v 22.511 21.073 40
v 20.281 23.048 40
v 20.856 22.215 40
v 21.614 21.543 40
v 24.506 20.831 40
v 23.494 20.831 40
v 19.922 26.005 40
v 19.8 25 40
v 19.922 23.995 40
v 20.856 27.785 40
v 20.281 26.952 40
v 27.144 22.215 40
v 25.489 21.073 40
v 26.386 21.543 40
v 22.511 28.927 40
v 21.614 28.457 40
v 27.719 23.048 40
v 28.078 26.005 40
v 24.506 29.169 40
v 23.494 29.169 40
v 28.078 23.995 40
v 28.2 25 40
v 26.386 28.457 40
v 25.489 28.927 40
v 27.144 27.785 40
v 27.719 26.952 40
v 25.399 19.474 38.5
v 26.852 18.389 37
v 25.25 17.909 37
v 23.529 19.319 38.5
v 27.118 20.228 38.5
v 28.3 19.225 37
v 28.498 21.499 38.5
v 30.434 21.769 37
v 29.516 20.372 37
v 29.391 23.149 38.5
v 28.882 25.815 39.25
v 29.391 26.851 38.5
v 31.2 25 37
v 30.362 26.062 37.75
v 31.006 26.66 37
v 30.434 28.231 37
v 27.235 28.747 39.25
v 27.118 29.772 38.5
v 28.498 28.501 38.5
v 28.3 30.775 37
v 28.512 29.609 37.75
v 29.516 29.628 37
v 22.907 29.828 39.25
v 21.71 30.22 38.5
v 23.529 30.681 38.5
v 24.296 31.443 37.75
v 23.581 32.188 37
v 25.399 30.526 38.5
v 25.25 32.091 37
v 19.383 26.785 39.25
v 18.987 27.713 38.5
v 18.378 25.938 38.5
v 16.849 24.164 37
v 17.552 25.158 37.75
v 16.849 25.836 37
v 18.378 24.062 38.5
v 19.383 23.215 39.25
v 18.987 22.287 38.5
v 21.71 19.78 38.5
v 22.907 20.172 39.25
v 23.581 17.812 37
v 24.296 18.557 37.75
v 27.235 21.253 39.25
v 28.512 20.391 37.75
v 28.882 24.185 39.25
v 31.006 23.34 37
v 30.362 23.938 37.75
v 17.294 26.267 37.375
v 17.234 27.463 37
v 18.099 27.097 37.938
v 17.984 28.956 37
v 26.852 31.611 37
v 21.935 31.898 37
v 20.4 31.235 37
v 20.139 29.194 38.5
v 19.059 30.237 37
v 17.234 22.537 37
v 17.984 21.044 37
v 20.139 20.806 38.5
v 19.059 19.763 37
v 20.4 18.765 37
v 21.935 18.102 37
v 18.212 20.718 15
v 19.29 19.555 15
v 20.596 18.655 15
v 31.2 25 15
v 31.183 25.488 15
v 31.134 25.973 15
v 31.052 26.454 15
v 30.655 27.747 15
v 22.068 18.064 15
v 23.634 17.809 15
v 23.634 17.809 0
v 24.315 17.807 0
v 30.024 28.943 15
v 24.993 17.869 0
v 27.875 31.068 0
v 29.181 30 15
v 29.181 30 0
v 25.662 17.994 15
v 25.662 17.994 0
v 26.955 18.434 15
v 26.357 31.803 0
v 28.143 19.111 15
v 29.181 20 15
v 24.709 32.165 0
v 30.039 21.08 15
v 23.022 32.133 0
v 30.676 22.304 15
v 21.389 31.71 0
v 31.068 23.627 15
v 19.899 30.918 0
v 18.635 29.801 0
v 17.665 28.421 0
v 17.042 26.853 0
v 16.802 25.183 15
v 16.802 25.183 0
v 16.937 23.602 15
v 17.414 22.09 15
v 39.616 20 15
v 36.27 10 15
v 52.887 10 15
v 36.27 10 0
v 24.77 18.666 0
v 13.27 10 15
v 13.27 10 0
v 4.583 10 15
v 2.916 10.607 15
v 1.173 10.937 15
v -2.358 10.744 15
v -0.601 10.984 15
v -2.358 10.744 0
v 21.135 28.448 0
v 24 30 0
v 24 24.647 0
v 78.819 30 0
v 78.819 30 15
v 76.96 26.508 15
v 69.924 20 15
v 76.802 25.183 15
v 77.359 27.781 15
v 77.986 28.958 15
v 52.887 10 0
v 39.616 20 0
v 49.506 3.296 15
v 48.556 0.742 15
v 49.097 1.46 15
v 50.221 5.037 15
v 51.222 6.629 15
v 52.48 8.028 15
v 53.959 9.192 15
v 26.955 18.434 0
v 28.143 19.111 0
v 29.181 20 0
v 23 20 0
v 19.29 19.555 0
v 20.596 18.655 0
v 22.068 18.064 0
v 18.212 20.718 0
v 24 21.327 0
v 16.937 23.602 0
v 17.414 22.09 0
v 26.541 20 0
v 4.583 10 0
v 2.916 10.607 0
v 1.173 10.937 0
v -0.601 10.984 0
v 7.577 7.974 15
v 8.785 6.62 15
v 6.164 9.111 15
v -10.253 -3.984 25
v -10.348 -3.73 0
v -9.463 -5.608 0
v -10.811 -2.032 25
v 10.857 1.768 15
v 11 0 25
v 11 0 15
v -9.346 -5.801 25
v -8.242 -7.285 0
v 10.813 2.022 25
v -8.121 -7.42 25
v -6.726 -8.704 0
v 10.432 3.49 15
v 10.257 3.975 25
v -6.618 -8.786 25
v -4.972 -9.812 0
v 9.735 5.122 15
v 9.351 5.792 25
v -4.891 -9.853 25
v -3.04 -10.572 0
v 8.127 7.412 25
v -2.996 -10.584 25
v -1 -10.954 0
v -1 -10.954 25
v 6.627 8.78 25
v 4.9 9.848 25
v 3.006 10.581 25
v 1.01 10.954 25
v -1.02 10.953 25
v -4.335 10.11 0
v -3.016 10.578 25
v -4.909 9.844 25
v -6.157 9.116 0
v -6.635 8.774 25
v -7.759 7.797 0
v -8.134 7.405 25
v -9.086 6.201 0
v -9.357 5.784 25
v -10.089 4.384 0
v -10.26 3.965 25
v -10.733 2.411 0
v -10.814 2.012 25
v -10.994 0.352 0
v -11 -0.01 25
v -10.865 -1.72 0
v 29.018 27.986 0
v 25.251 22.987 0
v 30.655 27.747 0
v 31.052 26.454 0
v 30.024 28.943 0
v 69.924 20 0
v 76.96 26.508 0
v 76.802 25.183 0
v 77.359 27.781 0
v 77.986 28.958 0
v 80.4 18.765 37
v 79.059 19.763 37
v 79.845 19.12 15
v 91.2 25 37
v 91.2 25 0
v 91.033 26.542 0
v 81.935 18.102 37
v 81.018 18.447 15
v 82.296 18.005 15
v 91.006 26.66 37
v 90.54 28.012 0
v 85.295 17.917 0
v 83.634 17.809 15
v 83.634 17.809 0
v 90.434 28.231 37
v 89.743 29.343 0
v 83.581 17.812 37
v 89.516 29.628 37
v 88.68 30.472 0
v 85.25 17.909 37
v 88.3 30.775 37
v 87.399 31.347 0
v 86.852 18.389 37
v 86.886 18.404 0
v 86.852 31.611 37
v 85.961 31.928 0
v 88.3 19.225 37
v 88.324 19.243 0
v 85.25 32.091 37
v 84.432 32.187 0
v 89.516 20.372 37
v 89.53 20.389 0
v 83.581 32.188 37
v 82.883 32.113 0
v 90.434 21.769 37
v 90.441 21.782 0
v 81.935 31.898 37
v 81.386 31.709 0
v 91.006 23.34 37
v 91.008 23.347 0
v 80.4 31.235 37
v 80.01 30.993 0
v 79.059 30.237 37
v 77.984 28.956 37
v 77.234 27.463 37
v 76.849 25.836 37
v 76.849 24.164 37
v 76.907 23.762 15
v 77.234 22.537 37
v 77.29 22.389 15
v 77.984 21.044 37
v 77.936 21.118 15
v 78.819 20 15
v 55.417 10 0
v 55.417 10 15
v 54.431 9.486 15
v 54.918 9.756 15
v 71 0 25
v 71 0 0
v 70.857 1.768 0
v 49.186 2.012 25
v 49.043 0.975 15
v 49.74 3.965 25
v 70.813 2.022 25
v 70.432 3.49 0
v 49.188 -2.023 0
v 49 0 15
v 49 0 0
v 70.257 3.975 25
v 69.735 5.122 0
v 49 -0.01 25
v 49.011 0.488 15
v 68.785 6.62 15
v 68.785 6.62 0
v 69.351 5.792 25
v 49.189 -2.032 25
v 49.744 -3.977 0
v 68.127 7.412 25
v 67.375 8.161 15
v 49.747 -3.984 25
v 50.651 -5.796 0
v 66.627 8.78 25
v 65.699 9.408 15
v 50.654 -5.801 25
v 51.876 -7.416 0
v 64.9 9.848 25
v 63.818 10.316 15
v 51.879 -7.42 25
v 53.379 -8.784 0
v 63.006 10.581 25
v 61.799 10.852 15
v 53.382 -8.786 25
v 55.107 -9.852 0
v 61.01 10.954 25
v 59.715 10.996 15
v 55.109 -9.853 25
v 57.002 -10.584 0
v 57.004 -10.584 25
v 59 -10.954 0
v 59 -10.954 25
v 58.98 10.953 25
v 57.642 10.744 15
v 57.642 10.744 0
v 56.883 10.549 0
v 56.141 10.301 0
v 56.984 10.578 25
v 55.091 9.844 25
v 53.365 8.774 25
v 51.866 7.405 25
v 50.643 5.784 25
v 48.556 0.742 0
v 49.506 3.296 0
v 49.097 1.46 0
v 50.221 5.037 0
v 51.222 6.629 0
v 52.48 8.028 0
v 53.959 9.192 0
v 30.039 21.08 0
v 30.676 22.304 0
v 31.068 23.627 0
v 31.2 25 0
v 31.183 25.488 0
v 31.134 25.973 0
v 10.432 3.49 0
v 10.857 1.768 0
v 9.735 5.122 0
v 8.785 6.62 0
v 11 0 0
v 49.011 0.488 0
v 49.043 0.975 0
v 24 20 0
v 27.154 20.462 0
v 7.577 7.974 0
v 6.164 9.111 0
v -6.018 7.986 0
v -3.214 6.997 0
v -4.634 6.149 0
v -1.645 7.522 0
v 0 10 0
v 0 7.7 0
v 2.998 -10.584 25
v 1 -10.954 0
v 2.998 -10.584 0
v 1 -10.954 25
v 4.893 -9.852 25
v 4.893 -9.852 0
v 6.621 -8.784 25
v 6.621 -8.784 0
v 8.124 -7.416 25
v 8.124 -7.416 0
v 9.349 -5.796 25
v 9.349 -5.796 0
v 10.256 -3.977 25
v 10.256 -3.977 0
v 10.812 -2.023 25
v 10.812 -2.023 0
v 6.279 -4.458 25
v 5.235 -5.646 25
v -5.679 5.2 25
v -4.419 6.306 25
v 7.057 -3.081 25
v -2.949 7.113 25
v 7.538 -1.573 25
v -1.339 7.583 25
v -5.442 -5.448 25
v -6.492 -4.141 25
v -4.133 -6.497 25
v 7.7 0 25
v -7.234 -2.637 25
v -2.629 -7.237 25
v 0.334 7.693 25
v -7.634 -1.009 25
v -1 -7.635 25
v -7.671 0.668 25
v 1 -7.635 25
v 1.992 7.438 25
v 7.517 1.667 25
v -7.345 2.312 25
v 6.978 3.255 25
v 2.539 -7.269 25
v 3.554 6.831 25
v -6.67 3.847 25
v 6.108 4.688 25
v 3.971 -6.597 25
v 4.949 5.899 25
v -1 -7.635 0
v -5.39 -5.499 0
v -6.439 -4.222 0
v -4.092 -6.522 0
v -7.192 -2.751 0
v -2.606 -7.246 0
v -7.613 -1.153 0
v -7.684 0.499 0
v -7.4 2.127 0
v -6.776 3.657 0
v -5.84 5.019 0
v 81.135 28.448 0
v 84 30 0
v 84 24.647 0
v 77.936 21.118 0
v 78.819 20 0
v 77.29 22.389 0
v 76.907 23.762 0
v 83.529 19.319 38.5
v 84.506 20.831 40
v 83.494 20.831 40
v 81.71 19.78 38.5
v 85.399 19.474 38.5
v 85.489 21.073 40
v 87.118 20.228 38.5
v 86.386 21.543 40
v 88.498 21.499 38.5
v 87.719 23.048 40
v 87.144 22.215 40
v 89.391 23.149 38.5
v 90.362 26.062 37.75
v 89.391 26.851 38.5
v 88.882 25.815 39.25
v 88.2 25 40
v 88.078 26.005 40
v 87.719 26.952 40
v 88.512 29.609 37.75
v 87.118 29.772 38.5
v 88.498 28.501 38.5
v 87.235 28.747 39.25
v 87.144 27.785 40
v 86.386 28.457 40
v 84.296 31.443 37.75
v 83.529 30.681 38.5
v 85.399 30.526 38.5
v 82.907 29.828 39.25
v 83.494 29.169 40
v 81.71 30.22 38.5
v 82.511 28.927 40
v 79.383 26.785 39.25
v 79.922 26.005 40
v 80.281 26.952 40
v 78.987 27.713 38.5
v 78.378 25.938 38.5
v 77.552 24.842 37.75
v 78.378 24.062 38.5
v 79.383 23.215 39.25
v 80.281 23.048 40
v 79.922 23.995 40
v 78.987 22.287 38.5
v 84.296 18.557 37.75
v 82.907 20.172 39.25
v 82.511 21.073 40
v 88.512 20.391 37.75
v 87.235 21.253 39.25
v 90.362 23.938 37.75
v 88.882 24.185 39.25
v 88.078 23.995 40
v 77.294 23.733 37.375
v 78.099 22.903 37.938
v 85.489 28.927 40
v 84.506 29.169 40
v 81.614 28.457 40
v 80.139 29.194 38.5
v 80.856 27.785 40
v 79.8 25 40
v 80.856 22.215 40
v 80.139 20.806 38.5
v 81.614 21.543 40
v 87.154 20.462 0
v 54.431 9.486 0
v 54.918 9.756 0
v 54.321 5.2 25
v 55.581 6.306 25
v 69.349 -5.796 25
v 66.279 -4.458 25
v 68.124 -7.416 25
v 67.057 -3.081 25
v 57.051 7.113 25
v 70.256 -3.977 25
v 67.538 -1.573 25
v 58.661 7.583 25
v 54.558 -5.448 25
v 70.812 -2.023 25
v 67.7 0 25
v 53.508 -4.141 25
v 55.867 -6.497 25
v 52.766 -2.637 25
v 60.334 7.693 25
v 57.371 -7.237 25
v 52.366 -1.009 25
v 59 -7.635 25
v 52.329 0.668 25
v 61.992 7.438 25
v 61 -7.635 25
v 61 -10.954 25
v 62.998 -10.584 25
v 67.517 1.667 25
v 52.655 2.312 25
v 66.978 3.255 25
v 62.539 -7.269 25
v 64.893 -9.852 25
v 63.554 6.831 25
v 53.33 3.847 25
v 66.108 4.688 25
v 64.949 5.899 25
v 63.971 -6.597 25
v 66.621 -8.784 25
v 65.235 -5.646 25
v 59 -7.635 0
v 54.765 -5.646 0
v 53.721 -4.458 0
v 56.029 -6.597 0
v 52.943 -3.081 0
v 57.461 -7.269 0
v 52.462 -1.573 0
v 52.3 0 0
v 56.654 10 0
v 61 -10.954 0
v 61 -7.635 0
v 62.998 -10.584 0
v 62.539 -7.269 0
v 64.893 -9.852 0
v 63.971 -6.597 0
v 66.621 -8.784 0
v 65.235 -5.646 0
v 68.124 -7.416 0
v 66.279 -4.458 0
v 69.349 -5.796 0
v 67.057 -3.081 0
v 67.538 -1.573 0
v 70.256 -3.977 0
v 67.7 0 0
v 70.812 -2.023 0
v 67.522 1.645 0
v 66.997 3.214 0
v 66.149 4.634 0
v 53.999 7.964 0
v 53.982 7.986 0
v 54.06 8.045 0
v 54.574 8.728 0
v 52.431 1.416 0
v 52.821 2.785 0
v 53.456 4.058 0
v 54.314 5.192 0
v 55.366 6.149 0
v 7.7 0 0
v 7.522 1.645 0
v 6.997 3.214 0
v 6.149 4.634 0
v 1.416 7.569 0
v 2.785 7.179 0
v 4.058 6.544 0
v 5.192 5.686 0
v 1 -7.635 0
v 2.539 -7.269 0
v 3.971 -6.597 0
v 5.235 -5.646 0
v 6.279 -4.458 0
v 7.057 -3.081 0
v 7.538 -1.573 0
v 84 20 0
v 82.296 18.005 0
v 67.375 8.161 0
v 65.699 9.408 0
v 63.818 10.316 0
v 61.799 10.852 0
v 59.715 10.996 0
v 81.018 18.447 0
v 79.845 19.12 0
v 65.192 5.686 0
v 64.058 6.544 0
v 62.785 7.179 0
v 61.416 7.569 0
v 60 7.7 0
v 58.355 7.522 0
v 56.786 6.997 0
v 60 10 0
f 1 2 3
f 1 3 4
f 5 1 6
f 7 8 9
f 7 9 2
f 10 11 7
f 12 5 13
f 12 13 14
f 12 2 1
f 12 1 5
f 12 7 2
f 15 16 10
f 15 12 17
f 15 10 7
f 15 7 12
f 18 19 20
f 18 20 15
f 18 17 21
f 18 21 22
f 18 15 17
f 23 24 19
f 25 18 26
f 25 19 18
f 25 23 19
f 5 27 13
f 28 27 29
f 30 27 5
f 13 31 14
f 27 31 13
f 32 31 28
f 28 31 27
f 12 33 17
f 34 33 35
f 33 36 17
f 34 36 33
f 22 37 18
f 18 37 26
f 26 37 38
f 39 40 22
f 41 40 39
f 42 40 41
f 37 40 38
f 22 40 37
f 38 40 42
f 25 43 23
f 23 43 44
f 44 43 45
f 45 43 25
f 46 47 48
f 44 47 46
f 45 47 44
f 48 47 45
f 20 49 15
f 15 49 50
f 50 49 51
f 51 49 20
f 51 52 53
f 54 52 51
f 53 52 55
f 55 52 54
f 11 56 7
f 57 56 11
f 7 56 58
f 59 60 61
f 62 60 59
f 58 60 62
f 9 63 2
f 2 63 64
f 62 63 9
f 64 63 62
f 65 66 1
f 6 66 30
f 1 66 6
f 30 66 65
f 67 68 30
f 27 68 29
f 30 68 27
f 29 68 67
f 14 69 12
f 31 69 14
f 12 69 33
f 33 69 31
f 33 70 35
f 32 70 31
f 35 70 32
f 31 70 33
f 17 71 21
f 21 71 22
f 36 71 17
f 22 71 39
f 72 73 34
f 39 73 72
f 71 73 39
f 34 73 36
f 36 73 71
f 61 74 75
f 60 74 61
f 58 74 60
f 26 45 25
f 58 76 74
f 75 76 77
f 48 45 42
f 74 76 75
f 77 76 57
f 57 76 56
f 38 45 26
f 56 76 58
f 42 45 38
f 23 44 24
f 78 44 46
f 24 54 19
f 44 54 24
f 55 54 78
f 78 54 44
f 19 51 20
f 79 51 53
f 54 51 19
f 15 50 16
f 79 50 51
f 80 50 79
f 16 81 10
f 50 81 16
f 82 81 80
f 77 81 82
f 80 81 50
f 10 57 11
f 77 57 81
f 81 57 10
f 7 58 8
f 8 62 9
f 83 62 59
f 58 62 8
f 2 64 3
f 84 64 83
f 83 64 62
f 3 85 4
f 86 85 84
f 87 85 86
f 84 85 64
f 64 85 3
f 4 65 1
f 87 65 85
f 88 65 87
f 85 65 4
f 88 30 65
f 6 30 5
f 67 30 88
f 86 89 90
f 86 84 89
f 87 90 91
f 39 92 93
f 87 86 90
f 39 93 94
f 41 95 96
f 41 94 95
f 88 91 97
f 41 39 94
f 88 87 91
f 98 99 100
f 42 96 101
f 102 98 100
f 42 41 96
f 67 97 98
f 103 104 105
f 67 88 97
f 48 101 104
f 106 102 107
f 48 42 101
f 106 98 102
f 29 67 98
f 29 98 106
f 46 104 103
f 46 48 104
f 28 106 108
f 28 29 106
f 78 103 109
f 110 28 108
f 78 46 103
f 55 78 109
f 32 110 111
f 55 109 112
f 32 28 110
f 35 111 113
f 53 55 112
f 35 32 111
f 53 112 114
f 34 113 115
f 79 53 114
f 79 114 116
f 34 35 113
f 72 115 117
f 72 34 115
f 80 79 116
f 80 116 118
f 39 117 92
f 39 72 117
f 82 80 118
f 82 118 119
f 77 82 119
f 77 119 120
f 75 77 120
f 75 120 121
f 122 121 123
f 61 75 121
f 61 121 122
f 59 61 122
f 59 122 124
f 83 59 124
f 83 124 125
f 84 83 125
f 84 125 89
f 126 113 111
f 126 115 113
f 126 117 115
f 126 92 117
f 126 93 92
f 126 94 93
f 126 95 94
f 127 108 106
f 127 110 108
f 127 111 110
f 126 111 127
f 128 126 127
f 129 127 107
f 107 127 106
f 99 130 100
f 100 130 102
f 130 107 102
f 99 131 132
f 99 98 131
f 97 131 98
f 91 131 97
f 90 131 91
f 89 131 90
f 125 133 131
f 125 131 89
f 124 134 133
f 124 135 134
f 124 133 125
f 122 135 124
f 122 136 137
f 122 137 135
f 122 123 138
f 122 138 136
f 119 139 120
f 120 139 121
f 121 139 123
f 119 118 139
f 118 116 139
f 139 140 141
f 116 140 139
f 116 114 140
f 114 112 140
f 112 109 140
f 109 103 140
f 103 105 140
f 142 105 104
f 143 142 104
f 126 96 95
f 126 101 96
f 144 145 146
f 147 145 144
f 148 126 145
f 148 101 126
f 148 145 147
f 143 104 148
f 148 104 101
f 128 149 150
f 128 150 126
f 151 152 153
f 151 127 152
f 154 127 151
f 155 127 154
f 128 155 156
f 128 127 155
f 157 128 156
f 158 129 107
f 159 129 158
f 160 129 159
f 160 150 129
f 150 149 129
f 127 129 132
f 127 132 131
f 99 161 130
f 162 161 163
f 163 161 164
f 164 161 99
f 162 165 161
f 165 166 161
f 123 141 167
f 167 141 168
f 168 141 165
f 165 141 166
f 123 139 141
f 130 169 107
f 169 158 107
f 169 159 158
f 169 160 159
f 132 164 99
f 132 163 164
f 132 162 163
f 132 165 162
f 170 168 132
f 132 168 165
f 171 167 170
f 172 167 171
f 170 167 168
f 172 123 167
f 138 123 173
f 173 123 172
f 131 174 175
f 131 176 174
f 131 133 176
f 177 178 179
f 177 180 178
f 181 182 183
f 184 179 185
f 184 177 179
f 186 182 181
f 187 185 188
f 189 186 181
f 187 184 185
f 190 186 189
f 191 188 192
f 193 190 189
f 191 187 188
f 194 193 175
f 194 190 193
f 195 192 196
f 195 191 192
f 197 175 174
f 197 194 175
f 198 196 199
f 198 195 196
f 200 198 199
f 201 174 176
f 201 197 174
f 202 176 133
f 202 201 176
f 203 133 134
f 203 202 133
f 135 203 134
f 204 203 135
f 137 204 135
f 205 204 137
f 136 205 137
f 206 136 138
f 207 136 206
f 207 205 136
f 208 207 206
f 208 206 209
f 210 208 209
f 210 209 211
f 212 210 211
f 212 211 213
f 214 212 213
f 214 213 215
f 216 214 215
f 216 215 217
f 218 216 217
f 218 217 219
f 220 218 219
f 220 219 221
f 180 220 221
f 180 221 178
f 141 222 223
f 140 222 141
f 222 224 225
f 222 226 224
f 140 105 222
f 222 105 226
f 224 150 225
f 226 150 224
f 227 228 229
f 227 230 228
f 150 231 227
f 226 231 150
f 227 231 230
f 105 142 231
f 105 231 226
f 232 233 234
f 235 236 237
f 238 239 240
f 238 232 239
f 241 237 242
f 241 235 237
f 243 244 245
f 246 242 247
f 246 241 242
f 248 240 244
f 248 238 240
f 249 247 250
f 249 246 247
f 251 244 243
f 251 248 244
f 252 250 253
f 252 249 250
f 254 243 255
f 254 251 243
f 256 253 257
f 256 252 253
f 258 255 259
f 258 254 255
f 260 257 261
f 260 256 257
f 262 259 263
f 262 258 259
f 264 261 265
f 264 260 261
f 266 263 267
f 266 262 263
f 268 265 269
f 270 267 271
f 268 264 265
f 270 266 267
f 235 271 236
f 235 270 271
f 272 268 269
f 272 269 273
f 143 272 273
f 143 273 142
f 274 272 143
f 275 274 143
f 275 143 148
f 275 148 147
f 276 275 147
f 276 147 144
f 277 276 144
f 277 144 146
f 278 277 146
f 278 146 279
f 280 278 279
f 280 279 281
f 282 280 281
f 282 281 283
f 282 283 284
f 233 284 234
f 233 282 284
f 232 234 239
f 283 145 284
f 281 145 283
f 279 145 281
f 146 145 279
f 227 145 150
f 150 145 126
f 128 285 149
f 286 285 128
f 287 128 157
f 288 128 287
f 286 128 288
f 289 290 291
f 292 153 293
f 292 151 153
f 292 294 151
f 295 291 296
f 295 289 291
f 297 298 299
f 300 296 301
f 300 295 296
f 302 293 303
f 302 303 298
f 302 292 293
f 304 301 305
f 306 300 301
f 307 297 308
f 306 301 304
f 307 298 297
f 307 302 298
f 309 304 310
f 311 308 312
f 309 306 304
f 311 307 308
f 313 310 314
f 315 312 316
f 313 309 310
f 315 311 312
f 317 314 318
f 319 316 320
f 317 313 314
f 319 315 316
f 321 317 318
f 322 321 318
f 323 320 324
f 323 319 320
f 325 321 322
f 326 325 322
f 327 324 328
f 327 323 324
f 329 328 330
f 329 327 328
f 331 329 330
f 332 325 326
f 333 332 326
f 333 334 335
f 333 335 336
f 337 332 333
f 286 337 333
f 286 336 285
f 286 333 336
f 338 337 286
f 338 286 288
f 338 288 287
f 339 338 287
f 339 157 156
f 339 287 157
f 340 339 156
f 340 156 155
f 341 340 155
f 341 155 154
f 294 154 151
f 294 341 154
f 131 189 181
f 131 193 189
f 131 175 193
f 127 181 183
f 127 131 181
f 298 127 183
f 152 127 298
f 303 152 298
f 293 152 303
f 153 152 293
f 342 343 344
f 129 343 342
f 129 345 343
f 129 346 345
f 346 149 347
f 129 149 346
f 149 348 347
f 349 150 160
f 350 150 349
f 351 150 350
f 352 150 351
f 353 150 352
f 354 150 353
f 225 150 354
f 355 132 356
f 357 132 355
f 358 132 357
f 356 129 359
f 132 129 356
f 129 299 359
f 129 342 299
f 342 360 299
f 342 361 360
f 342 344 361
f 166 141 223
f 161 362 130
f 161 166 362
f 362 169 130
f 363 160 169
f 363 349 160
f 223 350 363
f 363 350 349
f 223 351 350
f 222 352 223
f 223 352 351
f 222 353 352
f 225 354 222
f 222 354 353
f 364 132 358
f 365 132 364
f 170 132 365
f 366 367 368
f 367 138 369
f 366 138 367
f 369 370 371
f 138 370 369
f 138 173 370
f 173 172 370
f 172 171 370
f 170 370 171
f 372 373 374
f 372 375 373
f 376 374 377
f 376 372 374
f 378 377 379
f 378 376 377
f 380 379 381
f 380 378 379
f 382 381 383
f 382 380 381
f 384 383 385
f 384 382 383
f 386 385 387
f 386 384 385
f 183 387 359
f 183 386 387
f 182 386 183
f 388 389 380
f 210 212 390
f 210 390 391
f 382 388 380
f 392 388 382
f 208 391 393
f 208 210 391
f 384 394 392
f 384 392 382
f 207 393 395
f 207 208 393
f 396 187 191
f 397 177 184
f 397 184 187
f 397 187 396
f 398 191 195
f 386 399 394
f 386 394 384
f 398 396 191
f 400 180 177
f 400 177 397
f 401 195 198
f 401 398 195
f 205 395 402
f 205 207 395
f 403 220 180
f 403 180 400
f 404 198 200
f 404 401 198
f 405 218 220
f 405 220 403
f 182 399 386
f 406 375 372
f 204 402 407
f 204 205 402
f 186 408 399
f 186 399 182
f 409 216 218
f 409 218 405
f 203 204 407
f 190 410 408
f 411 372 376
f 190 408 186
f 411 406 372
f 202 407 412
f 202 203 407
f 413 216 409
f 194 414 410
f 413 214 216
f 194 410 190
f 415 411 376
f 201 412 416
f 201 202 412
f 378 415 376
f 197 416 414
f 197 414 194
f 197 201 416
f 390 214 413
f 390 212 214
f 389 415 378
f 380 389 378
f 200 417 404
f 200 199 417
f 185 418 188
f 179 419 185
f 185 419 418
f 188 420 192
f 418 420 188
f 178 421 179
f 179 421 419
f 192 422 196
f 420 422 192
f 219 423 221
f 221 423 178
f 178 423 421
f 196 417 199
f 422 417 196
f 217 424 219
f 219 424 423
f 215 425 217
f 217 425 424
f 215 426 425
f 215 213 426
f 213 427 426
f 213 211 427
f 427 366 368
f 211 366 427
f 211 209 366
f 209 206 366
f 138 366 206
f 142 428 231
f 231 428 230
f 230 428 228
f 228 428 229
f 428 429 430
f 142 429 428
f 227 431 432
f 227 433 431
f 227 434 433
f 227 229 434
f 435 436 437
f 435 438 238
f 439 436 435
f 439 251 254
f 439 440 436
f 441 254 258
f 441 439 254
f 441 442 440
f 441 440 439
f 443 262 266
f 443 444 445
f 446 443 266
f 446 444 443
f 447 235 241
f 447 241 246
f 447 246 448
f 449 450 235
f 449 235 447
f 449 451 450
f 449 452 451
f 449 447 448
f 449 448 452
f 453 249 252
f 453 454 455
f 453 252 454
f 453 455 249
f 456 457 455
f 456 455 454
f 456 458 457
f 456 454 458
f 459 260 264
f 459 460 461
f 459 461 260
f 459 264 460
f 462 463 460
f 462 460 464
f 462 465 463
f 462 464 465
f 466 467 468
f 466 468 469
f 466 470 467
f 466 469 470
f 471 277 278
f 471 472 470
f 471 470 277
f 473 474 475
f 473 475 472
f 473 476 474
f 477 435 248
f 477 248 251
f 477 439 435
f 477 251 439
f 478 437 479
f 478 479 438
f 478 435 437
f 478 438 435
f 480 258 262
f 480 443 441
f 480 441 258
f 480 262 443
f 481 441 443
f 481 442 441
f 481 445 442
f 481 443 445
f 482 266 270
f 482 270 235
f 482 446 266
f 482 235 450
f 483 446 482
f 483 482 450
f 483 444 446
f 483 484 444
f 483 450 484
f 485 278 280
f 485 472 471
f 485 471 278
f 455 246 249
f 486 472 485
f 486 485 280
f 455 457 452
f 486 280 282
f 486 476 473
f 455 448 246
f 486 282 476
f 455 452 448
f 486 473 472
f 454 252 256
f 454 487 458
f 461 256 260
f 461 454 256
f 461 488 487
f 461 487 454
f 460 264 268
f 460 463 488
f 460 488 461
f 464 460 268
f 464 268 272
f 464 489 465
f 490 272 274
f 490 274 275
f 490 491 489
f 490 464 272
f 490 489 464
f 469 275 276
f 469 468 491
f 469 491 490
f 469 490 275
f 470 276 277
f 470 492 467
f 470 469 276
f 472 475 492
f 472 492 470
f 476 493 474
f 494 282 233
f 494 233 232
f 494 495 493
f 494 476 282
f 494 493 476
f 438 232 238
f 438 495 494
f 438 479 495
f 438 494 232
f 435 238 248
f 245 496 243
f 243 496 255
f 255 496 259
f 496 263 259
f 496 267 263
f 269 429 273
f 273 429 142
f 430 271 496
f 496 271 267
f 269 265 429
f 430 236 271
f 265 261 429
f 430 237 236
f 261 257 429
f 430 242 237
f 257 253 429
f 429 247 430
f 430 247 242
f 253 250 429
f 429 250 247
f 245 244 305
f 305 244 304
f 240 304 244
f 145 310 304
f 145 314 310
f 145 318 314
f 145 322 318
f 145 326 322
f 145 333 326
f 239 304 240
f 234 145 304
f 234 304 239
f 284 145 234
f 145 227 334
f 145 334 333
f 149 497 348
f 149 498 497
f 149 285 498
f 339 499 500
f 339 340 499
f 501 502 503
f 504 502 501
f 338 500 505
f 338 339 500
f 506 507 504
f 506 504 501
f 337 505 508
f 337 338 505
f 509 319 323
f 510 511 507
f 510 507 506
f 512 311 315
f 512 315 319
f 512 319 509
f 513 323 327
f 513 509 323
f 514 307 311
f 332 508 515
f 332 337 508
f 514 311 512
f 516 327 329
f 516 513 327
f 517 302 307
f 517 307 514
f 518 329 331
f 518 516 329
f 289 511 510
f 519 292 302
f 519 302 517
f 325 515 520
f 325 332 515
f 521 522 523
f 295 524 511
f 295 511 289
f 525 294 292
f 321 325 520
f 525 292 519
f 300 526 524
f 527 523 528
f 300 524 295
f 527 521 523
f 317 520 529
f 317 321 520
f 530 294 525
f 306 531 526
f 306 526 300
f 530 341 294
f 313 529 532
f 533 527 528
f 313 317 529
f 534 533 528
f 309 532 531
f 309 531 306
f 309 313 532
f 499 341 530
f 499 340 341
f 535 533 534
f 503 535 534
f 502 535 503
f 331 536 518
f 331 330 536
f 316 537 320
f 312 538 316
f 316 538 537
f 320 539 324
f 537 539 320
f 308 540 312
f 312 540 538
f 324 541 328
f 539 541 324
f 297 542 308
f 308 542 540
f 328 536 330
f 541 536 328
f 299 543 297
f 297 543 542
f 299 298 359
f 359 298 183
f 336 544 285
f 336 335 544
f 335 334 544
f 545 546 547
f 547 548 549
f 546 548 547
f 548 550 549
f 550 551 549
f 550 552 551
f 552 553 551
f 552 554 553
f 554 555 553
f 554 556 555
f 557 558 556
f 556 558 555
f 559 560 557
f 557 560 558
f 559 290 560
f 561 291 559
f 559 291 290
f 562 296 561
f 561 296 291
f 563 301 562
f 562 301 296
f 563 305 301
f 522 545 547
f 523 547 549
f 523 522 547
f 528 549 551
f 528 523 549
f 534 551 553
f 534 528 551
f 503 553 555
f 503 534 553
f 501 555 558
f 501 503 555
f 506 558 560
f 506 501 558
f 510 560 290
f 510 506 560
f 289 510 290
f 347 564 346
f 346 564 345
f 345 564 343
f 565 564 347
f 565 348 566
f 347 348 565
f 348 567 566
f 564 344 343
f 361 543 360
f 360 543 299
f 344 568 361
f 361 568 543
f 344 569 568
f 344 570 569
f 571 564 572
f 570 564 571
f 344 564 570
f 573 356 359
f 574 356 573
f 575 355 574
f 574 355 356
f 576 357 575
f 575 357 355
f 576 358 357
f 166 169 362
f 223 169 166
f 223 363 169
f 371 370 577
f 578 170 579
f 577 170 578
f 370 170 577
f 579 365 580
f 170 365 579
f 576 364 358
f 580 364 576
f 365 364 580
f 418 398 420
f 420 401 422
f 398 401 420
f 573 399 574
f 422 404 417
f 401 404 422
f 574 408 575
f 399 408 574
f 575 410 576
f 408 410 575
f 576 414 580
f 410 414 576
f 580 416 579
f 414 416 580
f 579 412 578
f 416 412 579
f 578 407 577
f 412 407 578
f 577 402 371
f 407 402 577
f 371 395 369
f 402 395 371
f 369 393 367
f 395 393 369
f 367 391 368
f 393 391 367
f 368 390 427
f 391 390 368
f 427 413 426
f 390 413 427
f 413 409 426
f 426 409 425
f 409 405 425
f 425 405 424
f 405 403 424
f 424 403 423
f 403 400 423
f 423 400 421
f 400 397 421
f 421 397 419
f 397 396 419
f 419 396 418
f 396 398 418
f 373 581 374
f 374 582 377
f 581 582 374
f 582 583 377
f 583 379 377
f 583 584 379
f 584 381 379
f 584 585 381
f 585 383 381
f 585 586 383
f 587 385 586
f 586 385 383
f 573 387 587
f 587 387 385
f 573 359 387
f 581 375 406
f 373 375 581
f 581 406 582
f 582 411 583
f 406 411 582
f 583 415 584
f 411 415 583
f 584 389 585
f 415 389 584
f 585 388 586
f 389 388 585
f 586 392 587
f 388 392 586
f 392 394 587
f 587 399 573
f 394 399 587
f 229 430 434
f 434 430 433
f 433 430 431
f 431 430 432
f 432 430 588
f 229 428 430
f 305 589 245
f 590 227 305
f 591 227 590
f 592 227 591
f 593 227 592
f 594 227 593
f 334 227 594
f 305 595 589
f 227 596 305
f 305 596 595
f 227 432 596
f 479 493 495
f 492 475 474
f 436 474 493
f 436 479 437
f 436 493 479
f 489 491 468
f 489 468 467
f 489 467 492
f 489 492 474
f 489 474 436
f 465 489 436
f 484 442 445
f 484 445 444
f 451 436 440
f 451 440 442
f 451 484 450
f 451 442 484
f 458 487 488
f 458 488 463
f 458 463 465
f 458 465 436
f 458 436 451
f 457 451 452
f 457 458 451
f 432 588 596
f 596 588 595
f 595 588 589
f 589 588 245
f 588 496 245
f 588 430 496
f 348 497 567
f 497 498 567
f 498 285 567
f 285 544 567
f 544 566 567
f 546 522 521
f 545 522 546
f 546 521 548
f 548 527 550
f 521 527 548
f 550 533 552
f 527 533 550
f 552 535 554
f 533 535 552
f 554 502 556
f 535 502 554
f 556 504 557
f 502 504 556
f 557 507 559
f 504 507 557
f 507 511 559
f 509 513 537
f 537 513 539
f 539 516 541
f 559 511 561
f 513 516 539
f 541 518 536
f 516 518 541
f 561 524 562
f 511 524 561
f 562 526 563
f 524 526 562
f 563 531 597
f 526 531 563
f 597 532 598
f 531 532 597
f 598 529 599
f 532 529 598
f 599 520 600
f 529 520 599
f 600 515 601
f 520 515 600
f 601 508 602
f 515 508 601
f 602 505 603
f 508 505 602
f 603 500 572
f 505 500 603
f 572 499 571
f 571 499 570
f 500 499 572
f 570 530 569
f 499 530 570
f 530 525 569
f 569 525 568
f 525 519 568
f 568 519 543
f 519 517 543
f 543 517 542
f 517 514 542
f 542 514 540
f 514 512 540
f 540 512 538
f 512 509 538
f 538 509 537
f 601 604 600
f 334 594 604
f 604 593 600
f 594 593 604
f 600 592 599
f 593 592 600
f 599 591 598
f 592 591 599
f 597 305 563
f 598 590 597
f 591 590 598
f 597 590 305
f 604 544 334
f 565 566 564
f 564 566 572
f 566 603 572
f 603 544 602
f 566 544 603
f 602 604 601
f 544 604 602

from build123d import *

# Parameters (mm, degrees)
BOX006_W               = 2
BOX006_H               = 10
BOX006_DEPTH           = 30
BOX005_W               = 2
BOX005_H               = 10
BOX005_DEPTH           = 30
CYLINDER001_R          = 7.7
CYLINDER001_DEPTH      = 25
CYLINDER_R             = 7.7
CYLINDER_DEPTH         = 25
BOX004_W               = 32
BOX004_H               = 10
BOX004_DEPTH           = 15
BOX004_PLACEMENT_ANGLE = -37
BOX_W                  = 60
BOX_H                  = 10
BOX_DEPTH              = 15
CYLINDER002_R          = 11
CYLINDER002_DEPTH      = 25
CYLINDER003_R          = 11
CYLINDER003_DEPTH      = 25
BOX003_W               = 34
BOX003_H               = 10
BOX003_DEPTH           = 15
BOX003_PLACEMENT_ANGLE = 37
BOX002_W               = 34
BOX002_H               = 10
BOX002_DEPTH           = 15
BOX002_PLACEMENT_ANGLE = 37
CYLINDER005_R          = 7.2
CYLINDER005_DEPTH      = 40
CYLINDER004_R          = 7.2
CYLINDER004_DEPTH      = 40
BOX001_W               = 60
BOX001_H               = 10
BOX001_DEPTH           = 15
CHAMFER_SIZE           = 3


with BuildPart() as cube006:
    # Box006 → Box006 (new body)
    with BuildSketch(Plane(origin=(59, -15, 0), x_dir=(1, 0, 0), z_dir=(0, 0, 1))):
        with Locations((1, 5)):
            Rectangle(BOX006_W, BOX006_H)
    extrude(amount=BOX006_DEPTH)


with BuildPart() as cube005:
    # Box005 → Box005 (new body)
    with BuildSketch(Plane(origin=(-1, -15, 0), x_dir=(1, 0, 0), z_dir=(0, 0, 1))):
        with Locations((1, 5)):
            Rectangle(BOX005_W, BOX005_H)
    extrude(amount=BOX005_DEPTH)


with BuildPart() as cylinder001:
    # Cylinder001 → Cylinder001 (new body)
    with BuildSketch(Plane(origin=(60, 0, 0), x_dir=(1, 0, 0), z_dir=(0, 0, 1))):
        Circle(CYLINDER001_R)
    extrude(amount=CYLINDER001_DEPTH)


with BuildPart() as cylinder:
    # Cylinder → Cylinder (new body)
    with BuildSketch(Plane.XY):
        Circle(CYLINDER_R)
    extrude(amount=CYLINDER_DEPTH)


with BuildPart() as cube004:
    # Box004 → Box004 (new body)
    with BuildSketch(Plane.XY):
        with Locations((16, 5)):
            Rectangle(BOX004_W, BOX004_H)
    extrude(amount=BOX004_DEPTH)


with BuildPart() as cube004_1:
    # Box004 placement: moved
    add(cube004.part.moved(Location((23, 20, 0))).rotate(Axis((23, 20, 0), (0, 0, 1)), BOX004_PLACEMENT_ANGLE))


with BuildPart() as cube:
    # Box → Box (new body)
    with BuildSketch(Plane.XY):
        with Locations((30, 5)):
            Rectangle(BOX_W, BOX_H)
    extrude(amount=BOX_DEPTH)


with BuildPart() as cylinder002:
    # Cylinder002 → Cylinder002 (new body)
    with BuildSketch(Plane.XY):
        Circle(CYLINDER002_R)
    extrude(amount=CYLINDER002_DEPTH)


with BuildPart() as fusion003:
    # Cylinder003 → Cylinder003 (new body)
    with BuildSketch(Plane(origin=(60, 0, 0), x_dir=(1, 0, 0), z_dir=(0, 0, 1))):
        Circle(CYLINDER003_R)
    extrude(amount=CYLINDER003_DEPTH)

    # Fusion: union Cube, Cylinder002
    add(cube.part)
    add(cylinder002.part)

    # Fusion003: union Cube004
    add(cube004_1.part)


with BuildPart() as fusion004:
    # Box003 → Box003 (new body)
    with BuildSketch(Plane.XY):
        with Locations((17, 5)):
            Rectangle(BOX003_W, BOX003_H)
    extrude(amount=BOX003_DEPTH)


with BuildPart() as fusion004_1:
    # Box003 placement: moved
    add(fusion004.part.moved(Location((60, 0, 0))).rotate(Axis((60, 0, 0), (0, 0, 1)), BOX003_PLACEMENT_ANGLE))

    # Fusion004: union Fusion003
    add(fusion003.part)


with BuildPart() as cut003:
    # Box002 → Box002 (new body)
    with BuildSketch(Plane.XY):
        with Locations((17, 5)):
            Rectangle(BOX002_W, BOX002_H)
    extrude(amount=BOX002_DEPTH)


with BuildPart() as cut003_1:
    # Box002 placement: moved
    add(cut003.part.rotate(Axis((0, 0, 0), (0, 0, 1)), BOX002_PLACEMENT_ANGLE))

    # Fusion005: union Fusion004
    add(fusion004_1.part)

    # Cut: cut Cylinder
    add(cylinder.part, mode=Mode.SUBTRACT)

    # Cut001: cut Cylinder001
    add(cylinder001.part, mode=Mode.SUBTRACT)

    # Cut002: cut Cube005
    add(cube005.part, mode=Mode.SUBTRACT)

    # Cut003: cut Cube006
    add(cube006.part, mode=Mode.SUBTRACT)


with BuildPart() as cylinder005:
    # Cylinder005 → Cylinder005 (new body)
    with BuildSketch(Plane(origin=(60, 0, 0), x_dir=(1, 0, 0), z_dir=(0, 0, 1))):
        Circle(CYLINDER005_R)
    extrude(amount=CYLINDER005_DEPTH)


with BuildPart() as fusion001:
    # Cylinder004 → Cylinder004 (new body)
    with BuildSketch(Plane.XY):
        Circle(CYLINDER004_R)
    extrude(amount=CYLINDER004_DEPTH)

    # Fusion001: union Cylinder005
    add(cylinder005.part)


with BuildPart() as fusion006:
    # Box001 → Box001 (new body)
    with BuildSketch(Plane(origin=(0, -5, 0), x_dir=(1, 0, 0), z_dir=(0, 0, 1))):
        with Locations((30, 5)):
            Rectangle(BOX001_W, BOX001_H)
    extrude(amount=BOX001_DEPTH)

    # Fusion002: union Fusion001
    add(fusion001.part)

    # Chamfer
    chamfer_edges = [fusion006.edges().sort_by_distance(p)[0] for p in [
        (-7.2, 0, 40),
        (52.8, 0, 40),
    ]]
    chamfer(chamfer_edges, length=CHAMFER_SIZE)


with BuildPart() as fusion006_1:
    # Chamfer placement: moved
    add(fusion006.part.moved(Location((24, 25, 0))))

    # Fusion006: union Cut003
    add(cut003_1.part)


solid = fusion006_1.part
